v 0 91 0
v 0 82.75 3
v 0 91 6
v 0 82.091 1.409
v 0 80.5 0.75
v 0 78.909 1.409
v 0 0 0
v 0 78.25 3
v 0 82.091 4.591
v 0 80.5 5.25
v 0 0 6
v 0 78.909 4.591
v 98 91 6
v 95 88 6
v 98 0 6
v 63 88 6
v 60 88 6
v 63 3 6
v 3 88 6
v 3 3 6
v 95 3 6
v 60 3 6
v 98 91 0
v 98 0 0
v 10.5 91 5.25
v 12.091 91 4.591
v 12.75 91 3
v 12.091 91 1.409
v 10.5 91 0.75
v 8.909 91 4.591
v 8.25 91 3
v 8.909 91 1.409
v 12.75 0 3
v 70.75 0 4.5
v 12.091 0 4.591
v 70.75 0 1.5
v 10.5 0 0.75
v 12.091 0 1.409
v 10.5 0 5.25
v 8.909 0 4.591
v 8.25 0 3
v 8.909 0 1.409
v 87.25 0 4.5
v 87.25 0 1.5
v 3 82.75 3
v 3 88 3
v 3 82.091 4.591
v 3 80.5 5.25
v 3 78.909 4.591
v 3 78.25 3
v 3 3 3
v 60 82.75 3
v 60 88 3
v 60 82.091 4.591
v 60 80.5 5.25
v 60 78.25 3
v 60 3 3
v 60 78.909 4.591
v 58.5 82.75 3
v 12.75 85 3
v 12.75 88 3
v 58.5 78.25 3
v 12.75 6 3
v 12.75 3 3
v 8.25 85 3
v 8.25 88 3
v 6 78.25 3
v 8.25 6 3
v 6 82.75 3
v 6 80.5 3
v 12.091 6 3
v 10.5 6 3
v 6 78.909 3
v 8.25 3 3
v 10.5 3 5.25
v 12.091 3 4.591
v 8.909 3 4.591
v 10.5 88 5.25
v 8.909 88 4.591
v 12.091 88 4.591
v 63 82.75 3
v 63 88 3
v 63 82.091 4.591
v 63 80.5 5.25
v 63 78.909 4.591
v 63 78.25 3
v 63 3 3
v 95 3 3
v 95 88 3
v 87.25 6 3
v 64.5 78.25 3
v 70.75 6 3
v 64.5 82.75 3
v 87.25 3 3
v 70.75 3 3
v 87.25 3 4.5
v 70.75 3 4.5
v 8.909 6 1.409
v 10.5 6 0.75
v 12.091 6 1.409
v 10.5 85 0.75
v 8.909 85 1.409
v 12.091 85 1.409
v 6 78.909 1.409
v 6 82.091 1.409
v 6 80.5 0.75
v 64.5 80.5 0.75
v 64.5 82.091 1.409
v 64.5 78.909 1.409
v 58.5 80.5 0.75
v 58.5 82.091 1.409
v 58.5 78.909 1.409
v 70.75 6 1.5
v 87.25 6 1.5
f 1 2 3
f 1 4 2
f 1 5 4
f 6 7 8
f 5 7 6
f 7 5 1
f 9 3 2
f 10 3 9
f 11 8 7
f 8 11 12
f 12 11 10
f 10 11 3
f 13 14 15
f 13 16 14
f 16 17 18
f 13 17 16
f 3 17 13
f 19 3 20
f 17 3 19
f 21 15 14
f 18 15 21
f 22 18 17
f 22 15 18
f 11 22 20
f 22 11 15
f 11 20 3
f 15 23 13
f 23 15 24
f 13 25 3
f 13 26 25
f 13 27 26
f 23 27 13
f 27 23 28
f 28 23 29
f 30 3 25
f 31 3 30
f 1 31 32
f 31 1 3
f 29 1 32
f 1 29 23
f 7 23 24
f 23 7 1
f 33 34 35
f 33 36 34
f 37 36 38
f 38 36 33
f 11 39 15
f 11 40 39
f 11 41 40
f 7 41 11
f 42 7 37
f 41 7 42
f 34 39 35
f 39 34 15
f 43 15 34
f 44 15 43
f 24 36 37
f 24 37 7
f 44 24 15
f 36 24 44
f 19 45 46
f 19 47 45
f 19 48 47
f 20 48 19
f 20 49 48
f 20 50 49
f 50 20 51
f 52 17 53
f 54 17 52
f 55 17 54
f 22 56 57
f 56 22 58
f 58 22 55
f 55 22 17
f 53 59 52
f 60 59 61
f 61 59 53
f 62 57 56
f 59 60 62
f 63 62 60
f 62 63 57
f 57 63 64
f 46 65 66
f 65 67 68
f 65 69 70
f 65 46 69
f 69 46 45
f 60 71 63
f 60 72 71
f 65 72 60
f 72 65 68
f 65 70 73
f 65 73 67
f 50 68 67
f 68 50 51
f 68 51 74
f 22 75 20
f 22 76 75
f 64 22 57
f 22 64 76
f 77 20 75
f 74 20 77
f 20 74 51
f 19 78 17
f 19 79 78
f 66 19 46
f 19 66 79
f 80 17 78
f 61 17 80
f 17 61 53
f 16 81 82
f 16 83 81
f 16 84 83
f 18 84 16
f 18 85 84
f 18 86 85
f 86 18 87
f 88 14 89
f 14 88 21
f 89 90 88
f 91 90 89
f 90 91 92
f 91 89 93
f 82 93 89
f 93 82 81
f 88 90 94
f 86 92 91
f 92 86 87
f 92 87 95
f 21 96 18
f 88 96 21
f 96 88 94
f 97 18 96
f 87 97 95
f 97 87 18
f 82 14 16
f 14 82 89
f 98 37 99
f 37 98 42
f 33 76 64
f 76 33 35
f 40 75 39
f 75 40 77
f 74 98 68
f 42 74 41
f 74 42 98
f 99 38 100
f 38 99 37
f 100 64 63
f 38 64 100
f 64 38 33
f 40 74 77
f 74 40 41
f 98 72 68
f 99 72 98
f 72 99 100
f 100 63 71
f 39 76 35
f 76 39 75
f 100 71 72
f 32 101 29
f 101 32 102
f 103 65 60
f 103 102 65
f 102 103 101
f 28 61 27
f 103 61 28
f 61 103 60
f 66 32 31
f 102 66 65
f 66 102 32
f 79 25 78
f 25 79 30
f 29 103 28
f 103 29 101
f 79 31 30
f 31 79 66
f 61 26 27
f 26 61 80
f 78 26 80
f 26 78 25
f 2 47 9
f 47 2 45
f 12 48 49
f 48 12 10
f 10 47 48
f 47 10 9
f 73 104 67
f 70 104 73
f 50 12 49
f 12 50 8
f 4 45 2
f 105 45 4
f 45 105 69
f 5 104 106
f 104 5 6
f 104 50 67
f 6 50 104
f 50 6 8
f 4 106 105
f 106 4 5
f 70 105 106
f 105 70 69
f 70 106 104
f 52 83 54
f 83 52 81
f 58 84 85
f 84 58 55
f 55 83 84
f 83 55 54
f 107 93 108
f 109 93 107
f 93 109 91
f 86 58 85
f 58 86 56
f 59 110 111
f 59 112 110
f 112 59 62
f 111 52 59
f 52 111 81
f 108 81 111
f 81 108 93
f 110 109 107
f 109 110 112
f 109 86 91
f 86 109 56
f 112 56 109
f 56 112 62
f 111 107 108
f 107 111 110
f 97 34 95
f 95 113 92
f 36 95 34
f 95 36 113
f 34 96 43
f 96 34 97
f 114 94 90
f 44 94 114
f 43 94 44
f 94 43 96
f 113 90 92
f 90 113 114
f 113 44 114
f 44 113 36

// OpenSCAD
// file: defs.scad
pid = 32;
ch = 85;
td = 57;
n = 3;
h = 80;
w = 320;
m = 2;
t1 = 3;
t2 = 2;
t3 = 5;
s = 7;
d = 12;
cp = 16.5;
cc = 9;
r = 6;
o = 30;
p = 65;
r2 = 17;
q = 6;
b = 4.5;
x = 57;
y = 84;
z = 30;
g = 20;
e = 6;
l1=40;
l2=10;
p2=12.5; // Offset for wire slots
channelo = 30;  // Offset for cable in
// main file
include <defs.scad>

/* This makes the bottom off center holder for a Teensy 3.2 with a lip, a channel for imageprocessor cables and part of a channel for panel to Teensy cables.
*/
    /* This makes the top off center holder for a Raspberry Pi 0 with a lip and a slot for the ribbon cable and a channel for GPIO & power cables.
    */
    difference() {
        cube([3*t1+td+pid,2*t1+ch, n+t1]);
        translate([t1, t1, t1]) cube([td, ch, n]);
        translate([2*t1+td, t1, t1]) cube([pid, ch, n]);
        translate([2*t1+b, 0, t1]) {
            rotate([0, 90, 90]) cylinder(h=t1*2, d=b);
        }
        translate([2*t1+b, ch, t1]) {
            rotate([0, 90, 90]) cylinder(h=t1*2, d=b);
        }
        translate([0, ch-b, t1]) {
            rotate([90, 0, 90]) cylinder(h=t1*2, d=b);
        }
        translate([t1/2+td, ch-b, t1]) {
            rotate([90, 0, 90]) cylinder(h=t1*2, d=b);
        }
        translate([2*t1+td+pid/2-cp/2, 0, t1/2]) {
            cube([cp, 2*t1, n]);
        }
    }
